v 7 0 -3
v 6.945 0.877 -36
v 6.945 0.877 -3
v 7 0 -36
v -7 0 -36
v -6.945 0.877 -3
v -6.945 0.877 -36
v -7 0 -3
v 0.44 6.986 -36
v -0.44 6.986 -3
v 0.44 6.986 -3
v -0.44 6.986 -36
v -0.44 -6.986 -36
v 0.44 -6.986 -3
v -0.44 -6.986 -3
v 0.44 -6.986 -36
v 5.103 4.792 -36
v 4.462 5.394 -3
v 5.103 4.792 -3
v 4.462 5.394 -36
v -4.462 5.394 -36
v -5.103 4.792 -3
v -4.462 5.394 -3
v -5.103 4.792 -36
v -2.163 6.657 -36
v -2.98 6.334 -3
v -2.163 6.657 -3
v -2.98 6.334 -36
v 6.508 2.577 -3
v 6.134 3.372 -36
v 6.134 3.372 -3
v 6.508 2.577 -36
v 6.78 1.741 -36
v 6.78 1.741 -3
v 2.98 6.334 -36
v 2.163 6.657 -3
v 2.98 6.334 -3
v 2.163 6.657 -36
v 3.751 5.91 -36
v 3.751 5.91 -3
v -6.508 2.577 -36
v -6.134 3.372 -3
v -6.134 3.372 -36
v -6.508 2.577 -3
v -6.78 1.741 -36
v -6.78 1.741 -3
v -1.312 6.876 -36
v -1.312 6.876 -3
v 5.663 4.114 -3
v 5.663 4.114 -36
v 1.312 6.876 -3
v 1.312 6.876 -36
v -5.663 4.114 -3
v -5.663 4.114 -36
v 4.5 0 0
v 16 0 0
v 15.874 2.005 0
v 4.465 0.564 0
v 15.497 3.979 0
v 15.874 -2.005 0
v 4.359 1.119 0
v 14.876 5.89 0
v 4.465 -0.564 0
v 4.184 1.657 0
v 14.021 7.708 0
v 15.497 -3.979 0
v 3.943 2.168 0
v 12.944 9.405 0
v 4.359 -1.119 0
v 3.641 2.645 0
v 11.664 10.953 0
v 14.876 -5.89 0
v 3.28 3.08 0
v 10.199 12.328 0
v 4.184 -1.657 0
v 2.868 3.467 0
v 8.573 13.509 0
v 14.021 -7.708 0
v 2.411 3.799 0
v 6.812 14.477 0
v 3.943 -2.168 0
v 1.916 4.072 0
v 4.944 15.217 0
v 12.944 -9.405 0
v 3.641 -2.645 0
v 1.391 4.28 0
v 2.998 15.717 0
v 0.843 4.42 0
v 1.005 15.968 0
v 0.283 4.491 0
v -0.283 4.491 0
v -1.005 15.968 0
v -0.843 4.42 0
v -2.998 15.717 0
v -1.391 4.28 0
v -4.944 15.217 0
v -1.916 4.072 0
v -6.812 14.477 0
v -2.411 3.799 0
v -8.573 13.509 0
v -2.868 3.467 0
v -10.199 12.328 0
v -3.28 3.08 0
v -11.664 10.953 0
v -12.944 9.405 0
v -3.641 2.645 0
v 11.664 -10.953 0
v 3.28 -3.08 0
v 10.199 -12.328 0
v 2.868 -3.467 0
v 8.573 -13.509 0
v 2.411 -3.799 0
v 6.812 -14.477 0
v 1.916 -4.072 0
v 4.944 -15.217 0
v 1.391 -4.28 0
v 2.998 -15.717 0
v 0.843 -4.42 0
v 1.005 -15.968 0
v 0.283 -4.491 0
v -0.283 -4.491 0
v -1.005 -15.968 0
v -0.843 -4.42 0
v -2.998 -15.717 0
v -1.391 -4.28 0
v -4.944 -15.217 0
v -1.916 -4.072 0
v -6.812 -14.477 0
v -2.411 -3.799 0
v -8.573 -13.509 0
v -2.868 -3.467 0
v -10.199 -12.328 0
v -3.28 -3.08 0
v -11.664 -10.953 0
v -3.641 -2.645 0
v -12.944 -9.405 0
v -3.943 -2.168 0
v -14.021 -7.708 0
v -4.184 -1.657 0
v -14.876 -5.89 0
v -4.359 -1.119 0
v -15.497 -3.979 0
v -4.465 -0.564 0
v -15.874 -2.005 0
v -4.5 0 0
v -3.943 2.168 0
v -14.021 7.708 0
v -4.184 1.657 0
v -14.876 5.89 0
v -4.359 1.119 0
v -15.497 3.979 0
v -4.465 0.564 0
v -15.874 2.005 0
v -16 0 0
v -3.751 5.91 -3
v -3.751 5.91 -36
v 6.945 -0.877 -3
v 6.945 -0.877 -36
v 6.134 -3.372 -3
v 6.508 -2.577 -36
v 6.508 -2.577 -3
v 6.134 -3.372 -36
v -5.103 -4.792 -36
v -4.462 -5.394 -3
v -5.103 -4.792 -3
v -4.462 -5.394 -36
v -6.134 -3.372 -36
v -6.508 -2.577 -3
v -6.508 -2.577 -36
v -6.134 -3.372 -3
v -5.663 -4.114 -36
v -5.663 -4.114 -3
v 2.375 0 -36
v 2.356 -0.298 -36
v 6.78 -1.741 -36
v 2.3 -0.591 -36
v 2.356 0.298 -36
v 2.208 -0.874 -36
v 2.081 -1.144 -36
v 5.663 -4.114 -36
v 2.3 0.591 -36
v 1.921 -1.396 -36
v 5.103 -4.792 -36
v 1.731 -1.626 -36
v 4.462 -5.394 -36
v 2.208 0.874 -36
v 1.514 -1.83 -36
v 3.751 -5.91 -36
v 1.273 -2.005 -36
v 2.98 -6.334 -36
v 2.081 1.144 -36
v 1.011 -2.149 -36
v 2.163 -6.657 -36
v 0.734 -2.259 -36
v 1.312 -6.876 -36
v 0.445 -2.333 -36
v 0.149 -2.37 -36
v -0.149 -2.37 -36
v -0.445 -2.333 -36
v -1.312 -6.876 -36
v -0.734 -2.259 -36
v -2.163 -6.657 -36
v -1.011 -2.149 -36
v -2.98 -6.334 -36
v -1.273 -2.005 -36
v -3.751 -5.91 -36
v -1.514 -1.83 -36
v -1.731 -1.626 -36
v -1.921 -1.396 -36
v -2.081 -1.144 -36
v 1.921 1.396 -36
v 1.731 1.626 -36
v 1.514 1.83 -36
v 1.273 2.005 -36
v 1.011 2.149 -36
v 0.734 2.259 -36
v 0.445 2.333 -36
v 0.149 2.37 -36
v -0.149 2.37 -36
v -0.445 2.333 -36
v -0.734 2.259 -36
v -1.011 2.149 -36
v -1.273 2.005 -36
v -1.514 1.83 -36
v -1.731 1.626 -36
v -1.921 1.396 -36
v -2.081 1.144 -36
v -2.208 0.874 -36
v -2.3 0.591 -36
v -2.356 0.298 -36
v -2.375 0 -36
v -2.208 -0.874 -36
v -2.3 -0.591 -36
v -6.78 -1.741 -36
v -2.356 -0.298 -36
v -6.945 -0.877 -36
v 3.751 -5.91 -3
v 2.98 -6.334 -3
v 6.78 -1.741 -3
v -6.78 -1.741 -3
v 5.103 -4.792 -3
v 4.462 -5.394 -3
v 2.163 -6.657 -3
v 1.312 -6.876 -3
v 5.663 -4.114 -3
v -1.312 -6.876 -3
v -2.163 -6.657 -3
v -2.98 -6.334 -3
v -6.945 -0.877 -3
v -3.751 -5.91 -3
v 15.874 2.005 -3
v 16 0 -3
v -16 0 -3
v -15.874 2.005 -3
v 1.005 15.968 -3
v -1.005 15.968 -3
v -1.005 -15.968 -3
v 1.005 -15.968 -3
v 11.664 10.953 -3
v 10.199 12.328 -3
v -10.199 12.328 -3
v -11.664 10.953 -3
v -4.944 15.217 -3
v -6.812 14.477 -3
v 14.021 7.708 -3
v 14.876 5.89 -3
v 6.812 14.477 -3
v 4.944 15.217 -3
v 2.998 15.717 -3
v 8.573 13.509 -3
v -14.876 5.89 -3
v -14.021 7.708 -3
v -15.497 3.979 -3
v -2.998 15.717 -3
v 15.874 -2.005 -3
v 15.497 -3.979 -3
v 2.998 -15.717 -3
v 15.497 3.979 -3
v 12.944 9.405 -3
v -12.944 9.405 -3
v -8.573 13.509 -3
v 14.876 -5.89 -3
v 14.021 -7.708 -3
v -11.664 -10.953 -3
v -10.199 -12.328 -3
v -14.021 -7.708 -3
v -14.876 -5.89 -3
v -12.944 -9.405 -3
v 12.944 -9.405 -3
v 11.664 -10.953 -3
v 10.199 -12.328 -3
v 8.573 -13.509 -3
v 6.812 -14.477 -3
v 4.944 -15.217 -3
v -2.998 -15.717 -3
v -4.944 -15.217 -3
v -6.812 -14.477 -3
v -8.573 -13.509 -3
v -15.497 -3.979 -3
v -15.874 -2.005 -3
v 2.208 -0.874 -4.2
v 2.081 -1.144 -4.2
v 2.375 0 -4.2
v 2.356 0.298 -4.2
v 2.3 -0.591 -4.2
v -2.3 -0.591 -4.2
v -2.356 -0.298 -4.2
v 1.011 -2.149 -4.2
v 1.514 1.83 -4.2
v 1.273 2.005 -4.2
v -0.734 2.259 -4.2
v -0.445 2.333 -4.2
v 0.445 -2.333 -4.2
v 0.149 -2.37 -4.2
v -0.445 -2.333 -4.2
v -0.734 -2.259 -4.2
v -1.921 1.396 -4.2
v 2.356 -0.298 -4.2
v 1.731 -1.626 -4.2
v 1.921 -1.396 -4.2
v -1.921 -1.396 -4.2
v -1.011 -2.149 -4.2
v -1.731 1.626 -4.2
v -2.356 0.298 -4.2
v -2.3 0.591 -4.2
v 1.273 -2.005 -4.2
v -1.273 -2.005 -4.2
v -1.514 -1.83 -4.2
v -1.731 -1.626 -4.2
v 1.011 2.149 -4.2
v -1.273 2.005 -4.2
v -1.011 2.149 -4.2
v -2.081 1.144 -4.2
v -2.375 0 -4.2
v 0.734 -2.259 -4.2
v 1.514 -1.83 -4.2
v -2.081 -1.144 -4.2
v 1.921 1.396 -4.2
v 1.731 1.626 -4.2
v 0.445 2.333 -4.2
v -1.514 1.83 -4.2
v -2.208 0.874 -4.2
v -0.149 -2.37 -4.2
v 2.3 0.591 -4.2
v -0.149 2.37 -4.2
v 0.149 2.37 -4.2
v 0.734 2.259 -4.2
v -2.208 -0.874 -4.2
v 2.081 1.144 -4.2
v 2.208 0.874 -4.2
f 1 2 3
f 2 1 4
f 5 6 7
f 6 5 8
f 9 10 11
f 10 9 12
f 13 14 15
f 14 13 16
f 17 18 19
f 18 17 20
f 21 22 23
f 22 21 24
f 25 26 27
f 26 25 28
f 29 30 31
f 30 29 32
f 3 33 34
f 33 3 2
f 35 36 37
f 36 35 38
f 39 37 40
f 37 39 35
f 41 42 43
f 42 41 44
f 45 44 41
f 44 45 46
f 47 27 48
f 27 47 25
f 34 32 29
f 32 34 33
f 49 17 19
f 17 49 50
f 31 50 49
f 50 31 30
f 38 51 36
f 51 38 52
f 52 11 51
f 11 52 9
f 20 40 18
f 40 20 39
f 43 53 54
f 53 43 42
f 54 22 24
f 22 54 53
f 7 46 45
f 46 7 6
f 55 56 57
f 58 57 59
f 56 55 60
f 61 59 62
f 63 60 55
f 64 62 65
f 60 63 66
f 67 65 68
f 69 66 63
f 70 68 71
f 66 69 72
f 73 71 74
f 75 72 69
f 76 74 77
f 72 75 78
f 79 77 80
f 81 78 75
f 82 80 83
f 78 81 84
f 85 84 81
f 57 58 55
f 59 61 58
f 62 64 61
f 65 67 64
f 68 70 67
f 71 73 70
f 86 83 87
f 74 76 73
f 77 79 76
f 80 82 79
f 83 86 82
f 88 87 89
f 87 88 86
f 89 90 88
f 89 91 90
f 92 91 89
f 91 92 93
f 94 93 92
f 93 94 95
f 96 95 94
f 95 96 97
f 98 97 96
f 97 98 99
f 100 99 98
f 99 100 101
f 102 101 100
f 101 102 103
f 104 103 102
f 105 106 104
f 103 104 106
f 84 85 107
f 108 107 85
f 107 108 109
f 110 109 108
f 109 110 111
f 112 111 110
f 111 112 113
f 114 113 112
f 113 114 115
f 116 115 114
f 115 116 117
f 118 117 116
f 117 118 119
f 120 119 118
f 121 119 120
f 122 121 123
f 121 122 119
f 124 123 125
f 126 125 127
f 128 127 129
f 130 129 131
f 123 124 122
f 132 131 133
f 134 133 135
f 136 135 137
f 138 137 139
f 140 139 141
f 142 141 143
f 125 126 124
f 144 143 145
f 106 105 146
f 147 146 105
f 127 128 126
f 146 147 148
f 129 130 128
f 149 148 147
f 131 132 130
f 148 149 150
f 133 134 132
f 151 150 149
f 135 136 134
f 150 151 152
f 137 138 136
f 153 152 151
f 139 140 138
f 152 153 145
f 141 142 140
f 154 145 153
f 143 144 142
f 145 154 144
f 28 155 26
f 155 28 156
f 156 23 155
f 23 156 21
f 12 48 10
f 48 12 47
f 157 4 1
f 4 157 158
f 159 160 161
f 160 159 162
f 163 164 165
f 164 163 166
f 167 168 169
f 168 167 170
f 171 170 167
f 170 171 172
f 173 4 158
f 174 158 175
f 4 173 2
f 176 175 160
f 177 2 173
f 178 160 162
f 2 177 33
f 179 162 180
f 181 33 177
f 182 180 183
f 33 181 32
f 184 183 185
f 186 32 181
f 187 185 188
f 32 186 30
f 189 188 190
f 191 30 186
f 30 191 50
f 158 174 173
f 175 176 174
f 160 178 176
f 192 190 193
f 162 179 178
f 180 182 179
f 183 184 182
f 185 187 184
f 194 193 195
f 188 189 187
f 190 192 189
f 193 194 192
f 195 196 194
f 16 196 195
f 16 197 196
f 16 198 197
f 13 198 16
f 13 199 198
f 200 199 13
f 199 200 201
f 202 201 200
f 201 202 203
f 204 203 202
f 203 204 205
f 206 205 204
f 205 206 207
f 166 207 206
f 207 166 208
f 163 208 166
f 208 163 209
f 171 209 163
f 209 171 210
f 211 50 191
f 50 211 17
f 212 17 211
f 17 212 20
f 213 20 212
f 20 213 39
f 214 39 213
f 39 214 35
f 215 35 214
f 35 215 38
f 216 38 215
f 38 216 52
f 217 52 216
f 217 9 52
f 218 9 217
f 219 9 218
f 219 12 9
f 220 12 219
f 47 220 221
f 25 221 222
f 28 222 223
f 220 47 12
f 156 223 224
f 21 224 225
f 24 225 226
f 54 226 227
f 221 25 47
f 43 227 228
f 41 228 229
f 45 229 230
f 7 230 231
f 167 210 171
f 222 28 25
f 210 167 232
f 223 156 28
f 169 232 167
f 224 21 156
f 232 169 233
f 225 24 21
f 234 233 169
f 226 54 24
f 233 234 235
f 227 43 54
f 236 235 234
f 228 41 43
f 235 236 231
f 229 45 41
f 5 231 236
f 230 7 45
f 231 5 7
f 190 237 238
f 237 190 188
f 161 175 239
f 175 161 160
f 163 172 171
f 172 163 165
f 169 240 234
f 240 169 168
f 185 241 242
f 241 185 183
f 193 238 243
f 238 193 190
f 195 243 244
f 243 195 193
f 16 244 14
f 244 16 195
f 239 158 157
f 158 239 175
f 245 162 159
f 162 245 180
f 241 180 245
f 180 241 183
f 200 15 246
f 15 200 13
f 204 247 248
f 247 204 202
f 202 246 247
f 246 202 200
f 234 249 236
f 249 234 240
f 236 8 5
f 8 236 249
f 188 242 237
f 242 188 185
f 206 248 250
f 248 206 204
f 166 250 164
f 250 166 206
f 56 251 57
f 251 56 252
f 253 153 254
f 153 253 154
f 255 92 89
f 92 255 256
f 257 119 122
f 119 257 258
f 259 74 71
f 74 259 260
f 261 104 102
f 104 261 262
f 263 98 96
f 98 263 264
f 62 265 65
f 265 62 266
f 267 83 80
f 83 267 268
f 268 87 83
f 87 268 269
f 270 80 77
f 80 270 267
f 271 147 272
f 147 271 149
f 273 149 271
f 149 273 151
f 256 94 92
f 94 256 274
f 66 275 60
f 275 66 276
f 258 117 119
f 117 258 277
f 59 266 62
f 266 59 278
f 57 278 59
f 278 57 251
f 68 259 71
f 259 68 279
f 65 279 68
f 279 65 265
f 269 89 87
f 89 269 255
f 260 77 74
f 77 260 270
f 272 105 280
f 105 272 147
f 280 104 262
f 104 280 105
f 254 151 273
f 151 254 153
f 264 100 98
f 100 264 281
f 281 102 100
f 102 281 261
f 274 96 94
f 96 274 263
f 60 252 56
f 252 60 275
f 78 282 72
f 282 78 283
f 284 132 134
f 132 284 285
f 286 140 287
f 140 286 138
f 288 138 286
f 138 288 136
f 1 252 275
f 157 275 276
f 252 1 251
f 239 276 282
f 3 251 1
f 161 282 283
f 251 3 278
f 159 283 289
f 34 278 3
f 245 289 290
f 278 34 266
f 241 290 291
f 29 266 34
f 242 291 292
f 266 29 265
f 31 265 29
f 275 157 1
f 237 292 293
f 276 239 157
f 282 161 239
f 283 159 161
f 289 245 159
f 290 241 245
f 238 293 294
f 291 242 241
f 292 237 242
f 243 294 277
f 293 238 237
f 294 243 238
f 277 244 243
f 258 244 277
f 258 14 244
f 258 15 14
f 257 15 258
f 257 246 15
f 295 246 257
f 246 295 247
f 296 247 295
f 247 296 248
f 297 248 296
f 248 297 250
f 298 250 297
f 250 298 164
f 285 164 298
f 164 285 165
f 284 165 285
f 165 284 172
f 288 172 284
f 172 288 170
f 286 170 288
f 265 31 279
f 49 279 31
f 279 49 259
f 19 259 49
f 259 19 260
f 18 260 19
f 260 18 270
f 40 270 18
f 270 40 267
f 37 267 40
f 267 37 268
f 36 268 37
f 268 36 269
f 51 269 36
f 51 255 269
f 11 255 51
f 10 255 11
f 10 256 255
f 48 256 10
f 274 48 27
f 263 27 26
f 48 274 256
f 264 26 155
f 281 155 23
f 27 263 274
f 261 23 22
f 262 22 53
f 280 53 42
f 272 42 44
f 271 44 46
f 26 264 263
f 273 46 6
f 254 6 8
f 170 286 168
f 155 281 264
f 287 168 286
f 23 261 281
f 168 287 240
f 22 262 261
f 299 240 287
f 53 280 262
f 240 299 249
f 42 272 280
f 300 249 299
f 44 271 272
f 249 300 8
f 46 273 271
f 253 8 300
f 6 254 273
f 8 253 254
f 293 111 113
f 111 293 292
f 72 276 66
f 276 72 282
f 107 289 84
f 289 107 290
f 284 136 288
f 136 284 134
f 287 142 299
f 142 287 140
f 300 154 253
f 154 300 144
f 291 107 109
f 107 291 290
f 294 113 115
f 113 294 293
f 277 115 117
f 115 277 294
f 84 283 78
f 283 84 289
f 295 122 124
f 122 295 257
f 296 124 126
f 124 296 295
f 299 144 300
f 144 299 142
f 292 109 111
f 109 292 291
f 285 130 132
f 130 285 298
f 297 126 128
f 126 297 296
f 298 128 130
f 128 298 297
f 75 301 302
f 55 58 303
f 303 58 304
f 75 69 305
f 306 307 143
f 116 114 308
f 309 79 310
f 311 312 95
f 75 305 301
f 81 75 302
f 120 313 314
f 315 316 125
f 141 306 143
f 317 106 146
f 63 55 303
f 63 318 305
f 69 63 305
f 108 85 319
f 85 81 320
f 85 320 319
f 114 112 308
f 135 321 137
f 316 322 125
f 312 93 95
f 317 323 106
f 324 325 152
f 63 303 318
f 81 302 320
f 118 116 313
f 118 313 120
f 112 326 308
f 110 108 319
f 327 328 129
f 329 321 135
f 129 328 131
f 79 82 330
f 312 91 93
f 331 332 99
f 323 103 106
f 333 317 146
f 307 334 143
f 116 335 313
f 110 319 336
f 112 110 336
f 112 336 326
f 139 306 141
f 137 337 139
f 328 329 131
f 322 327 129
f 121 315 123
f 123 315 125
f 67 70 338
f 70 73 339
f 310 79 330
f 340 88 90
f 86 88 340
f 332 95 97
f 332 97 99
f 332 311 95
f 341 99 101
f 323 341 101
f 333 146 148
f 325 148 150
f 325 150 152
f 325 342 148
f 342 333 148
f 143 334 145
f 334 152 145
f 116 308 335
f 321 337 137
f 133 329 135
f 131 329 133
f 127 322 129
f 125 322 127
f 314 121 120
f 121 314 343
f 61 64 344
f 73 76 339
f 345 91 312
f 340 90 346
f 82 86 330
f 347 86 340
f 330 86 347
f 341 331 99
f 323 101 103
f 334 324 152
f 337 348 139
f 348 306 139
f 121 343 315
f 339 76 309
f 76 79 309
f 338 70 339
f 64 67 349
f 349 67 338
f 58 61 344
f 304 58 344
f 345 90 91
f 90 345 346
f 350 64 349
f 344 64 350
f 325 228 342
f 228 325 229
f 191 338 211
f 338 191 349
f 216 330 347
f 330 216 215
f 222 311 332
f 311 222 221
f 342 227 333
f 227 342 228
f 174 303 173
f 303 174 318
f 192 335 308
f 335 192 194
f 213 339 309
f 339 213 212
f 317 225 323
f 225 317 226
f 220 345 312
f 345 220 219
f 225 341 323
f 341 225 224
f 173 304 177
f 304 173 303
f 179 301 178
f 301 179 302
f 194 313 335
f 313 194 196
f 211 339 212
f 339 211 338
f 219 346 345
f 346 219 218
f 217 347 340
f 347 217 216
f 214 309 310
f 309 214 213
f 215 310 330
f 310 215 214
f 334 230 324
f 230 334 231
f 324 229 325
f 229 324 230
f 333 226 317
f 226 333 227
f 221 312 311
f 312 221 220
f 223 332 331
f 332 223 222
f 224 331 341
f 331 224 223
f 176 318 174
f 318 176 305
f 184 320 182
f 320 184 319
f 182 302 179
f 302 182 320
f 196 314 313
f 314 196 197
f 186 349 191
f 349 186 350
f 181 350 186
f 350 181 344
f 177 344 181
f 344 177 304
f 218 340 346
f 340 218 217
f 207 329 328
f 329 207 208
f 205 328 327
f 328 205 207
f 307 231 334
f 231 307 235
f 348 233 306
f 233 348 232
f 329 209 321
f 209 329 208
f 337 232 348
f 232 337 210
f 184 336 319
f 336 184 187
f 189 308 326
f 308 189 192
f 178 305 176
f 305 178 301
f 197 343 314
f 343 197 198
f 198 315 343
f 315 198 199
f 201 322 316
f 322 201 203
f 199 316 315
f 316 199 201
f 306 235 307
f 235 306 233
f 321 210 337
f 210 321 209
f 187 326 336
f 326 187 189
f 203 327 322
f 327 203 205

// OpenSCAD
$fn = 50;


difference() {
	union() {
		translate(v = [0, 0, -36.0000000000]) {
			cylinder(h = 36, r = 7.0000000000);
		}
		translate(v = [0, 0, -3.0000000000]) {
			cylinder(h = 3, r = 16.0000000000);
		}
	}
	union() {
		translate(v = [0, 0, 0]) {
			rotate(a = [0, 0, 0]) {
				difference() {
					union() {
						#translate(v = [0, 0, -36.0000000000]) {
							cylinder(h = 36, r = 2.2500000000);
						}
						#translate(v = [0, 0, -4.2000000000]) {
							cylinder(h = 4.2000000000, r = 7.0000000000, r1 = 2.3750000000, r2 = 4.5000000000);
						}
						#translate(v = [0, 0, -36.0000000000]) {
							cylinder(h = 36, r = 2.3750000000);
						}
						#translate(v = [0, 0, -36.0000000000]) {
							cylinder(h = 36, r = 2.2500000000);
						}
					}
					union();
				}
			}
		}
	}
}
